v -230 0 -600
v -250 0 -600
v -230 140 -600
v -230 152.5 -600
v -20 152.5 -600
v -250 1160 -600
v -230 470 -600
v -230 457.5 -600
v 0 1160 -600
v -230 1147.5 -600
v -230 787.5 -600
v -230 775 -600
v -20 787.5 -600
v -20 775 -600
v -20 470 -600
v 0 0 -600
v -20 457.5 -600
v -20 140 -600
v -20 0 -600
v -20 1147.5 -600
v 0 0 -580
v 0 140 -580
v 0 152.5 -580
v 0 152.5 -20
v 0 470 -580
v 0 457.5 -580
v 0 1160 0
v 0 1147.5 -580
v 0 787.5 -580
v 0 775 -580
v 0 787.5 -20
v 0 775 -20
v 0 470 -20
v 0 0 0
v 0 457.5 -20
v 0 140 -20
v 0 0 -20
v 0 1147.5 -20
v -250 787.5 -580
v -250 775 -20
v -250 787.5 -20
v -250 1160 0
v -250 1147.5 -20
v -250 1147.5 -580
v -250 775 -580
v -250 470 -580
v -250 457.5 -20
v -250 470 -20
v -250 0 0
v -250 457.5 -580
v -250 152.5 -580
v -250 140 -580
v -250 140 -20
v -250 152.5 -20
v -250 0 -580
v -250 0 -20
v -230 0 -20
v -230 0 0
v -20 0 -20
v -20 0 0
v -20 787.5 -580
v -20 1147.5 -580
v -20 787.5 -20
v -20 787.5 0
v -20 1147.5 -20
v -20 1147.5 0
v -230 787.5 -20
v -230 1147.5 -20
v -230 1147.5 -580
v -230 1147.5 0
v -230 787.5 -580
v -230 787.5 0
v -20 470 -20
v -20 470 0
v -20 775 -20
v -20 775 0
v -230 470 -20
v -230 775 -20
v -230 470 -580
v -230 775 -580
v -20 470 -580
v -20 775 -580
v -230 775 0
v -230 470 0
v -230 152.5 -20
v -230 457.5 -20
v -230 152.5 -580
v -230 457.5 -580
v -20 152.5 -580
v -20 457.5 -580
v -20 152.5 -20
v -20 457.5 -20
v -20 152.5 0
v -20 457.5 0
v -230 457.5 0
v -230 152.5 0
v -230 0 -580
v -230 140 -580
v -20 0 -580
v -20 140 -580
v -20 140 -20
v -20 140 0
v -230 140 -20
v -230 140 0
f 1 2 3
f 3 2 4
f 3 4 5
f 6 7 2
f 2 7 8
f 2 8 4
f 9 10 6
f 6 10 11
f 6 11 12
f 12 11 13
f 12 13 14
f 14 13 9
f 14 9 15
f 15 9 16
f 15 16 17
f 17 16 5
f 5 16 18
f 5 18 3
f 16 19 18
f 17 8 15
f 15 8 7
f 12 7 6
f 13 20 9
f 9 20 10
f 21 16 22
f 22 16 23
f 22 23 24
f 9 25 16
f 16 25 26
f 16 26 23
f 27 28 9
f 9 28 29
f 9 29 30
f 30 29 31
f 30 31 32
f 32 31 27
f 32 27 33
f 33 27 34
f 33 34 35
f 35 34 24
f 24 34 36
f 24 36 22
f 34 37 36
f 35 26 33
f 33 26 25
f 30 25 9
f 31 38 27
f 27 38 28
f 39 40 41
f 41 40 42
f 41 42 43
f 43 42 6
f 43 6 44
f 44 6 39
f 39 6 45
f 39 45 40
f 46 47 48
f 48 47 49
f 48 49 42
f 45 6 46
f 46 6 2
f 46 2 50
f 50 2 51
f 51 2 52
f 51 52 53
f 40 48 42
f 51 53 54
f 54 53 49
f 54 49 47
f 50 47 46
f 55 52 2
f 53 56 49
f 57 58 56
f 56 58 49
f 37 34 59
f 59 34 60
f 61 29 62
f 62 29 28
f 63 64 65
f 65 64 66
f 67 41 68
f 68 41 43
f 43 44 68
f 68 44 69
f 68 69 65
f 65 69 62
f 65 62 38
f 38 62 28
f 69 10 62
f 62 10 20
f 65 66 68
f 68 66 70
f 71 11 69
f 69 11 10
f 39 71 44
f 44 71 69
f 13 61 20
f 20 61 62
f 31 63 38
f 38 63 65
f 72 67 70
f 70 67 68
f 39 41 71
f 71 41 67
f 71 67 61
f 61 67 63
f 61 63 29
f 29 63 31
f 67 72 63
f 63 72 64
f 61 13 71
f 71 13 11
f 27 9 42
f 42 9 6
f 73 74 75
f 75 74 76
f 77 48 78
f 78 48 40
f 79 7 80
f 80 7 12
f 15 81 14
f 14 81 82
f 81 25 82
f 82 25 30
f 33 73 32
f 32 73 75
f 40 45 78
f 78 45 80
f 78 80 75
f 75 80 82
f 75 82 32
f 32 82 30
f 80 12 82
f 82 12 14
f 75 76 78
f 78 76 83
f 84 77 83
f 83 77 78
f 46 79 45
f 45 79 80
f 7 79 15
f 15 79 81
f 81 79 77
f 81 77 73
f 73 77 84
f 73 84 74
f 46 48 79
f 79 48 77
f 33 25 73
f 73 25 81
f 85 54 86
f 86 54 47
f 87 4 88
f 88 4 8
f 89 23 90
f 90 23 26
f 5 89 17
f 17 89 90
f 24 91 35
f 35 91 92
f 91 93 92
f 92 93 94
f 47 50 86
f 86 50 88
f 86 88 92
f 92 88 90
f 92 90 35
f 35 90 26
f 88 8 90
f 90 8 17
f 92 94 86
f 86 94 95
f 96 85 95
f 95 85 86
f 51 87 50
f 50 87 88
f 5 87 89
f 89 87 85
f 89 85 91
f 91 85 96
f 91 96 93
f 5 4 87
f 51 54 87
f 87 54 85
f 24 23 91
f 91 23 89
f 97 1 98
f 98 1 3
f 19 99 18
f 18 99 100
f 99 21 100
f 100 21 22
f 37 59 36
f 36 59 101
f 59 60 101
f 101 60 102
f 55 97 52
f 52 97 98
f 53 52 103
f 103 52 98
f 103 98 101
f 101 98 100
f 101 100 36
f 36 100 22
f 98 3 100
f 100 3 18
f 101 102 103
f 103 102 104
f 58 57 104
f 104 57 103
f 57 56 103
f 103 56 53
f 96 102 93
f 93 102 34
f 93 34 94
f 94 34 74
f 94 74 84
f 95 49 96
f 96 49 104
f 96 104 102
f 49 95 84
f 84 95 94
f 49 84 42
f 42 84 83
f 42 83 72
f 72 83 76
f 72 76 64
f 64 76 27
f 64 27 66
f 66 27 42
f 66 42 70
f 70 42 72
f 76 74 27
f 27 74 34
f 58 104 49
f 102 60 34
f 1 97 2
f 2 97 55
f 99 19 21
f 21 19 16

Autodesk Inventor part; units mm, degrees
ref_plane "YZ Plane" through (0, 0, 0) normal (1, 0, 0) x (0, 1, 0)
ref_plane "XZ Plane" through (0, 0, 0) normal (0, 1, 0) x (-1, 0, 0)
ref_plane "XY Plane" through (0, 0, 0) normal (0, 0, 1) x (1, 0, 0)
sketch "Boceto1" plane through (0, 0, 0) normal (0, 1, 0) x (-1, 0, 0)
  line L0 (0, 0) -> (250, 0)
  line L1 (250, 0) -> (250, -600)
  line L2 (250, -600) -> (0, -600)
  line L3 (0, -600) -> (0, 0)
  line L4 (250, 0) -> (250, -20)
  line L5 (250, -20) -> (0, -20)
  line L6 (0, 0) -> (20, 0)
  line L7 (20, 0) -> (20, -600)
  line L8 (0, -600) -> (0, -580)
  line L9 (0, -580) -> (250, -580)
  line L10 (250, -600) -> (230, -600)
  line L11 (230, -600) -> (230, 0)
  point P0 (20, -20)
  point P1 (20, -580)
  point P2 (230, -580)
  point P3 (230, -20)
  dimension "d0" = 250
  dimension "d1" = 600
  dimension "d2" = 20
  dimension "d3" = 20
  dimension "d4" = 20
  dimension "d5" = 20
extrude "Extrusión1" add sketch "Boceto1" along normal blind 1160 contours L0 L7 L5 L3 | L0 L1 L5 L11 | L9 L7 L2 L3 | L9 L1 L2 L11
extrude "Extrusión2" add sketch "Boceto1" along normal blind 1160 contours L0 L11 L5 L7 | L5 L7 L9 L3 | L5 L11 L9 L7 | L5 L1 L9 L11 | L9 L11 L2 L7
extrude "Extrusión3" cut sketch "Boceto1" along normal blind 1147.5 contours L0 L11 L5 L7 | L5 L7 L9 L3 | L5 L11 L9 L7 | L5 L1 L9 L11 | L9 L11 L2 L7
extrude "Extrusión4" add sketch "Boceto1" along normal blind 787.5 contours L0 L11 L5 L7 | L5 L7 L9 L3 | L5 L11 L9 L7 | L5 L1 L9 L11 | L9 L11 L2 L7
extrude "Extrusión5" cut sketch "Boceto1" along normal blind 775 contours L0 L11 L5 L7 | L5 L7 L9 L3 | L5 L11 L9 L7 | L5 L1 L9 L11 | L9 L11 L2 L7
extrude "Extrusión6" add sketch "Boceto1" along normal blind 470 contours L0 L11 L5 L7 | L5 L7 L9 L3 | L5 L11 L9 L7 | L5 L1 L9 L11 | L9 L11 L2 L7
extrude "Extrusión7" cut sketch "Boceto1" along normal blind 457.5 contours L0 L11 L5 L7 | L5 L7 L9 L3 | L5 L11 L9 L7 | L5 L1 L9 L11 | L9 L11 L2 L7
extrude "Extrusión8" add sketch "Boceto1" along normal blind 152.5 contours L0 L11 L5 L7 | L5 L7 L9 L3 | L5 L11 L9 L7 | L5 L1 L9 L11 | L9 L11 L2 L7
extrude "Extrusión9" cut sketch "Boceto1" along normal blind 140 contours L0 L11 L5 L7 | L5 L7 L9 L3 | L5 L11 L9 L7 | L5 L1 L9 L11 | L9 L11 L2 L7
